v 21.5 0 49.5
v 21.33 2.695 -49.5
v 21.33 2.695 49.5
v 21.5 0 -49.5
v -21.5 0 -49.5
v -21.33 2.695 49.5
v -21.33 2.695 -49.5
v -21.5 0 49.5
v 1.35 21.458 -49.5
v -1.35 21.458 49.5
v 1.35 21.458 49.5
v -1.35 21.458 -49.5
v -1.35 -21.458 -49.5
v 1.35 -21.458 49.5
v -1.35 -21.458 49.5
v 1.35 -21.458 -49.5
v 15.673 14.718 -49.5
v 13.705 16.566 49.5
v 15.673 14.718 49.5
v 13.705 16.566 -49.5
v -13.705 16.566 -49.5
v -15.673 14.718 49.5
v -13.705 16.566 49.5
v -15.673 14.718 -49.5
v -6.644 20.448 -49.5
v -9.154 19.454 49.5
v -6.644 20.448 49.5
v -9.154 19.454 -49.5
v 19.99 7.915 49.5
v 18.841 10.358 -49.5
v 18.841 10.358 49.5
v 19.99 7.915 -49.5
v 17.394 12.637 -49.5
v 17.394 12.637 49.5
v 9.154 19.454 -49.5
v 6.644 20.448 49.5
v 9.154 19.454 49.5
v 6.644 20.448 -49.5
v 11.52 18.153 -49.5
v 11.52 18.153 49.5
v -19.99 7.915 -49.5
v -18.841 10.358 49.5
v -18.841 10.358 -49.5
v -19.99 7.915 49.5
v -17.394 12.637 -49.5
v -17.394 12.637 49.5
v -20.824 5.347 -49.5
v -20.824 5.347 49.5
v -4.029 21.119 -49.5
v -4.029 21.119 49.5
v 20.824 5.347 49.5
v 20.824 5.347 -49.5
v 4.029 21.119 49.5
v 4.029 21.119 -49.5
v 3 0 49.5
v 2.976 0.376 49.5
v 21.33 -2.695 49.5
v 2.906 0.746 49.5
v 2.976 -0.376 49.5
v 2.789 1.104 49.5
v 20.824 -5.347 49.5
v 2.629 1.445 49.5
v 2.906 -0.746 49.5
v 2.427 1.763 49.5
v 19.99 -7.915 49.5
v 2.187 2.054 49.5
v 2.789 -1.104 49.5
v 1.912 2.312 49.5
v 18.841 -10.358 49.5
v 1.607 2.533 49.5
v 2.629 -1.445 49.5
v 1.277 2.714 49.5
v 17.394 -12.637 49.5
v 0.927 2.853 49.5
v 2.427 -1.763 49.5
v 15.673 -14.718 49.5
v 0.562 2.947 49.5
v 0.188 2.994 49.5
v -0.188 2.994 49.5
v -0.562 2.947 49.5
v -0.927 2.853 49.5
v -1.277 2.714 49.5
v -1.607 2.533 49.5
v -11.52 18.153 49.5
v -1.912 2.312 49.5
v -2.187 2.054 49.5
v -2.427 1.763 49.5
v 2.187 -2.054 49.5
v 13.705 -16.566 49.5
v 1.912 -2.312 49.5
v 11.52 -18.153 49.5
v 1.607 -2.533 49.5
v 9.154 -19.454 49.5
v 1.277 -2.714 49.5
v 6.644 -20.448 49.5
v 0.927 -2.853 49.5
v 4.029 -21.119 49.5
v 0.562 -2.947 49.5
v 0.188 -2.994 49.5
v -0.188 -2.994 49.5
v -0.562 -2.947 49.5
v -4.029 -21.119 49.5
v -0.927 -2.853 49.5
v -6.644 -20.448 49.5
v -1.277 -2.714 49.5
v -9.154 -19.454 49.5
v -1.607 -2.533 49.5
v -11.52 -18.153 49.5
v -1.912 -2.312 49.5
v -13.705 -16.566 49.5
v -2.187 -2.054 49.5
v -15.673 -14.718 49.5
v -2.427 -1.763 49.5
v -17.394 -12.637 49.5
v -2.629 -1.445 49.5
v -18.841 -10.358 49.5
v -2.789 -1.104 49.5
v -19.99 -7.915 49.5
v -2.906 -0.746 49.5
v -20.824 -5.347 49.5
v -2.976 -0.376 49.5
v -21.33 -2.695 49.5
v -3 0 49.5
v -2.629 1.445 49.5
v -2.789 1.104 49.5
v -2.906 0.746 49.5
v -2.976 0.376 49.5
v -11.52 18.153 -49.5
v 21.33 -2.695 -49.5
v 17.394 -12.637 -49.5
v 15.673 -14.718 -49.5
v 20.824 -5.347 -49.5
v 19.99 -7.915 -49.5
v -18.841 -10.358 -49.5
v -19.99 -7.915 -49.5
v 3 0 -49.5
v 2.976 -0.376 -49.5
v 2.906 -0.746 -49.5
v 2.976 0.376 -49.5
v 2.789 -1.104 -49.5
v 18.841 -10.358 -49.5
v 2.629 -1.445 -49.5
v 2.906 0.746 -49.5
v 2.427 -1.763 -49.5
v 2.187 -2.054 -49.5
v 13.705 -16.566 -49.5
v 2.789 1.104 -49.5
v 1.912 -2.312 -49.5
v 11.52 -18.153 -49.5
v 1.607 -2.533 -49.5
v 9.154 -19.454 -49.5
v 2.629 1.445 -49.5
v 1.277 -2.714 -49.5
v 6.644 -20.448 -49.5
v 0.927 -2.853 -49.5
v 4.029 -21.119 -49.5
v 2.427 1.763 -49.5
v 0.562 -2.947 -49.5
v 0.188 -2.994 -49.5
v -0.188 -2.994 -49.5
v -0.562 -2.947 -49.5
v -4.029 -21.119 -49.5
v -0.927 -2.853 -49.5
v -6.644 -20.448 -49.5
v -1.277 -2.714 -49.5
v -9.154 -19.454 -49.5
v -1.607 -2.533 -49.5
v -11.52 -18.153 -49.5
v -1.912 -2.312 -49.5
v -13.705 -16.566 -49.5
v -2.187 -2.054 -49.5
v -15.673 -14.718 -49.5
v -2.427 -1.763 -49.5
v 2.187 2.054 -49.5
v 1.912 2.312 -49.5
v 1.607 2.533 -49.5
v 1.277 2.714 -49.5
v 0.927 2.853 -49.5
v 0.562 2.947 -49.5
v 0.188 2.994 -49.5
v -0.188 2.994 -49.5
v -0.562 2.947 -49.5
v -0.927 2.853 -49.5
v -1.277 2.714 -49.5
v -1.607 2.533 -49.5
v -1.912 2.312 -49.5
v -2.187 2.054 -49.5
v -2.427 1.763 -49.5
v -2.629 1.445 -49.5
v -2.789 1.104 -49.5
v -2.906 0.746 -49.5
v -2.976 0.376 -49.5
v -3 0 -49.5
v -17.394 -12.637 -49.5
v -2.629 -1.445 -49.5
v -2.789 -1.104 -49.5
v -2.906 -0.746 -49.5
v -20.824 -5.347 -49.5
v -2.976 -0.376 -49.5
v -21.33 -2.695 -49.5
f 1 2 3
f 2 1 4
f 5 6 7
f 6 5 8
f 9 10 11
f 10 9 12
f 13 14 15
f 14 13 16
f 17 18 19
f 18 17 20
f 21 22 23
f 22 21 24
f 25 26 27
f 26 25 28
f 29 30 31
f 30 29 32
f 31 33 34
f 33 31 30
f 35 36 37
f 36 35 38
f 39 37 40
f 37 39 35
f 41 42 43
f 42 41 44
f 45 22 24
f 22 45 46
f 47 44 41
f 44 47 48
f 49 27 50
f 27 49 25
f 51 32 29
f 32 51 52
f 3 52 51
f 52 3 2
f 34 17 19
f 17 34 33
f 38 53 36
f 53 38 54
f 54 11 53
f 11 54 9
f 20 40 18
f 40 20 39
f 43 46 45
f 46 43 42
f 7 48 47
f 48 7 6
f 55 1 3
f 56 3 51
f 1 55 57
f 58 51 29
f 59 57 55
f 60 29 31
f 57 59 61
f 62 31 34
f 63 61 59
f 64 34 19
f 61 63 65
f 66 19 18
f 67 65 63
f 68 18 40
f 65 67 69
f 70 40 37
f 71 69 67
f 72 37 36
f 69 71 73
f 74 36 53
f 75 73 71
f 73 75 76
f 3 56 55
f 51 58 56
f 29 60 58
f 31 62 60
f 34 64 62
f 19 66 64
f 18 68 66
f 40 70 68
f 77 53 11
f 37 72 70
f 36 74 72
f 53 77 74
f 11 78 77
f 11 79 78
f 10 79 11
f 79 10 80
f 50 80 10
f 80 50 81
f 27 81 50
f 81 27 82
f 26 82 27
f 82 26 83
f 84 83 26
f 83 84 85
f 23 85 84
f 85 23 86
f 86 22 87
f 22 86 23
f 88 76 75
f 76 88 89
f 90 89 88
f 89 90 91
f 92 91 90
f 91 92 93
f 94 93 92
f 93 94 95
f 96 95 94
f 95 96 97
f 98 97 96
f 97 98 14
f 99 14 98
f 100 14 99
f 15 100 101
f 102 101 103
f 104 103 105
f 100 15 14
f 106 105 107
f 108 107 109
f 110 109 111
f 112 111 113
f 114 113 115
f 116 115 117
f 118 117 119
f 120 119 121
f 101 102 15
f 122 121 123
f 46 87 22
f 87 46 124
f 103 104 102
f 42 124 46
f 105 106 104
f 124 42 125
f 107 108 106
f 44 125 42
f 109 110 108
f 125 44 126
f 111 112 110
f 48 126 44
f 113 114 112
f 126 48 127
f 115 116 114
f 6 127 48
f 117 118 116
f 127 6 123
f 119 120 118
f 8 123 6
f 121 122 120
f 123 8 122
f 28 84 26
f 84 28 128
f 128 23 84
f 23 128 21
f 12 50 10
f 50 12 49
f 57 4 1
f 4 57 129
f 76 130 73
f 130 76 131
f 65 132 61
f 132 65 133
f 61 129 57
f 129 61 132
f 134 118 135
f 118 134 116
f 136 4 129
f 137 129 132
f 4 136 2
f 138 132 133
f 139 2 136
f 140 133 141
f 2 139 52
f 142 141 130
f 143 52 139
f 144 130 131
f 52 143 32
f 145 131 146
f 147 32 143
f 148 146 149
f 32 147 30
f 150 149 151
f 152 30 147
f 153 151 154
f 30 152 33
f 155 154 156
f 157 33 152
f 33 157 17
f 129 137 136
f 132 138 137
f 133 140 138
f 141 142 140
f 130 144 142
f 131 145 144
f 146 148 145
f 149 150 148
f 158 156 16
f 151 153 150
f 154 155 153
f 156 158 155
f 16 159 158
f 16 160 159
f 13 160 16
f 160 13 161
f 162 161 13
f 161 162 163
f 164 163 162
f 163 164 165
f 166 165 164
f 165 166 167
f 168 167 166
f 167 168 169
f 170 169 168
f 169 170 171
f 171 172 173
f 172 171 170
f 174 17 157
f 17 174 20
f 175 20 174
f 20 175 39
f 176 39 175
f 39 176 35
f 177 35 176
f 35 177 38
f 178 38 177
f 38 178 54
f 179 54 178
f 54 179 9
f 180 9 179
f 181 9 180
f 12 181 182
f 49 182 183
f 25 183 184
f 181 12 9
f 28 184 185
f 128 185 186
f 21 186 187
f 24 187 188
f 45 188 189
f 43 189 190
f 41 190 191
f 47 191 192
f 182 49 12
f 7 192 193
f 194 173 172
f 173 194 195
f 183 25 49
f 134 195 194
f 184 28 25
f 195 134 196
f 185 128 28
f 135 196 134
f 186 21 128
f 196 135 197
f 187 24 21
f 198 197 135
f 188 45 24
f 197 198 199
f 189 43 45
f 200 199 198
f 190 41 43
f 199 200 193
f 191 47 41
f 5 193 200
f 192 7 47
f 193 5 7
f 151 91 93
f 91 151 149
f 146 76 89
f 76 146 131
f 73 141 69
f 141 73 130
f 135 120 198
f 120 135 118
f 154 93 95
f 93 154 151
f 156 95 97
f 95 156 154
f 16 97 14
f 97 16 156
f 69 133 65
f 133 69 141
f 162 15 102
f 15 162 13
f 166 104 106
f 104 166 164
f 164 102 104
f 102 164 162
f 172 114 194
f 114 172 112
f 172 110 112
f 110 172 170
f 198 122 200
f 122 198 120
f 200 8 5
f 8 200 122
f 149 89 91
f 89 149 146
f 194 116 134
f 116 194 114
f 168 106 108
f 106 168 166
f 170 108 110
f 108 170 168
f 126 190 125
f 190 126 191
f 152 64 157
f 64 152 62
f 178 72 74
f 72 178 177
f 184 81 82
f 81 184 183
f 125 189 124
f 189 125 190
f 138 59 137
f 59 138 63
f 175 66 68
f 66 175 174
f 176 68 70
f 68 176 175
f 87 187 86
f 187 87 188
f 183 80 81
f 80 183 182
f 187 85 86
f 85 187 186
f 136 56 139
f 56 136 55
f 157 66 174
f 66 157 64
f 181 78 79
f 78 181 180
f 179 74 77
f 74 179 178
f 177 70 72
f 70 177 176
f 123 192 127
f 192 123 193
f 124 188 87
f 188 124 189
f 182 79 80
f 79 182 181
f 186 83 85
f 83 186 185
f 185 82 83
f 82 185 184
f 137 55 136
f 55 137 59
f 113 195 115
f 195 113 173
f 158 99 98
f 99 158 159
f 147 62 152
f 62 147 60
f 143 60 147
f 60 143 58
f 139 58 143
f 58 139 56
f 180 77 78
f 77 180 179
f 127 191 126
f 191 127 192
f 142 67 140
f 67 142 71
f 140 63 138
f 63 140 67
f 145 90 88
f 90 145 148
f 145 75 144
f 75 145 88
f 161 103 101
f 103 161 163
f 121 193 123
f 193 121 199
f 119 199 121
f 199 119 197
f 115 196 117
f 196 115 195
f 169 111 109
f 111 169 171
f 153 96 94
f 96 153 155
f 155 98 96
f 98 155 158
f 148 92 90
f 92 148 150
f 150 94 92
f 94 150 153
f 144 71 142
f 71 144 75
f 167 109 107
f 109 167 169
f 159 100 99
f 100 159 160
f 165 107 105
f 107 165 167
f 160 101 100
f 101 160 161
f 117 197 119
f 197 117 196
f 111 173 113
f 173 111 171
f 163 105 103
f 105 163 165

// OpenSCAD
$fn = 50;


difference() {
	union() {
		translate(v = [0, 0, -49.5000000000]) {
			cylinder(h = 99, r = 21.5000000000);
		}
	}
	union() {
		translate(v = [0, 0, -100.0000000000]) {
			cylinder(h = 200, r = 3);
		}
	}
}
